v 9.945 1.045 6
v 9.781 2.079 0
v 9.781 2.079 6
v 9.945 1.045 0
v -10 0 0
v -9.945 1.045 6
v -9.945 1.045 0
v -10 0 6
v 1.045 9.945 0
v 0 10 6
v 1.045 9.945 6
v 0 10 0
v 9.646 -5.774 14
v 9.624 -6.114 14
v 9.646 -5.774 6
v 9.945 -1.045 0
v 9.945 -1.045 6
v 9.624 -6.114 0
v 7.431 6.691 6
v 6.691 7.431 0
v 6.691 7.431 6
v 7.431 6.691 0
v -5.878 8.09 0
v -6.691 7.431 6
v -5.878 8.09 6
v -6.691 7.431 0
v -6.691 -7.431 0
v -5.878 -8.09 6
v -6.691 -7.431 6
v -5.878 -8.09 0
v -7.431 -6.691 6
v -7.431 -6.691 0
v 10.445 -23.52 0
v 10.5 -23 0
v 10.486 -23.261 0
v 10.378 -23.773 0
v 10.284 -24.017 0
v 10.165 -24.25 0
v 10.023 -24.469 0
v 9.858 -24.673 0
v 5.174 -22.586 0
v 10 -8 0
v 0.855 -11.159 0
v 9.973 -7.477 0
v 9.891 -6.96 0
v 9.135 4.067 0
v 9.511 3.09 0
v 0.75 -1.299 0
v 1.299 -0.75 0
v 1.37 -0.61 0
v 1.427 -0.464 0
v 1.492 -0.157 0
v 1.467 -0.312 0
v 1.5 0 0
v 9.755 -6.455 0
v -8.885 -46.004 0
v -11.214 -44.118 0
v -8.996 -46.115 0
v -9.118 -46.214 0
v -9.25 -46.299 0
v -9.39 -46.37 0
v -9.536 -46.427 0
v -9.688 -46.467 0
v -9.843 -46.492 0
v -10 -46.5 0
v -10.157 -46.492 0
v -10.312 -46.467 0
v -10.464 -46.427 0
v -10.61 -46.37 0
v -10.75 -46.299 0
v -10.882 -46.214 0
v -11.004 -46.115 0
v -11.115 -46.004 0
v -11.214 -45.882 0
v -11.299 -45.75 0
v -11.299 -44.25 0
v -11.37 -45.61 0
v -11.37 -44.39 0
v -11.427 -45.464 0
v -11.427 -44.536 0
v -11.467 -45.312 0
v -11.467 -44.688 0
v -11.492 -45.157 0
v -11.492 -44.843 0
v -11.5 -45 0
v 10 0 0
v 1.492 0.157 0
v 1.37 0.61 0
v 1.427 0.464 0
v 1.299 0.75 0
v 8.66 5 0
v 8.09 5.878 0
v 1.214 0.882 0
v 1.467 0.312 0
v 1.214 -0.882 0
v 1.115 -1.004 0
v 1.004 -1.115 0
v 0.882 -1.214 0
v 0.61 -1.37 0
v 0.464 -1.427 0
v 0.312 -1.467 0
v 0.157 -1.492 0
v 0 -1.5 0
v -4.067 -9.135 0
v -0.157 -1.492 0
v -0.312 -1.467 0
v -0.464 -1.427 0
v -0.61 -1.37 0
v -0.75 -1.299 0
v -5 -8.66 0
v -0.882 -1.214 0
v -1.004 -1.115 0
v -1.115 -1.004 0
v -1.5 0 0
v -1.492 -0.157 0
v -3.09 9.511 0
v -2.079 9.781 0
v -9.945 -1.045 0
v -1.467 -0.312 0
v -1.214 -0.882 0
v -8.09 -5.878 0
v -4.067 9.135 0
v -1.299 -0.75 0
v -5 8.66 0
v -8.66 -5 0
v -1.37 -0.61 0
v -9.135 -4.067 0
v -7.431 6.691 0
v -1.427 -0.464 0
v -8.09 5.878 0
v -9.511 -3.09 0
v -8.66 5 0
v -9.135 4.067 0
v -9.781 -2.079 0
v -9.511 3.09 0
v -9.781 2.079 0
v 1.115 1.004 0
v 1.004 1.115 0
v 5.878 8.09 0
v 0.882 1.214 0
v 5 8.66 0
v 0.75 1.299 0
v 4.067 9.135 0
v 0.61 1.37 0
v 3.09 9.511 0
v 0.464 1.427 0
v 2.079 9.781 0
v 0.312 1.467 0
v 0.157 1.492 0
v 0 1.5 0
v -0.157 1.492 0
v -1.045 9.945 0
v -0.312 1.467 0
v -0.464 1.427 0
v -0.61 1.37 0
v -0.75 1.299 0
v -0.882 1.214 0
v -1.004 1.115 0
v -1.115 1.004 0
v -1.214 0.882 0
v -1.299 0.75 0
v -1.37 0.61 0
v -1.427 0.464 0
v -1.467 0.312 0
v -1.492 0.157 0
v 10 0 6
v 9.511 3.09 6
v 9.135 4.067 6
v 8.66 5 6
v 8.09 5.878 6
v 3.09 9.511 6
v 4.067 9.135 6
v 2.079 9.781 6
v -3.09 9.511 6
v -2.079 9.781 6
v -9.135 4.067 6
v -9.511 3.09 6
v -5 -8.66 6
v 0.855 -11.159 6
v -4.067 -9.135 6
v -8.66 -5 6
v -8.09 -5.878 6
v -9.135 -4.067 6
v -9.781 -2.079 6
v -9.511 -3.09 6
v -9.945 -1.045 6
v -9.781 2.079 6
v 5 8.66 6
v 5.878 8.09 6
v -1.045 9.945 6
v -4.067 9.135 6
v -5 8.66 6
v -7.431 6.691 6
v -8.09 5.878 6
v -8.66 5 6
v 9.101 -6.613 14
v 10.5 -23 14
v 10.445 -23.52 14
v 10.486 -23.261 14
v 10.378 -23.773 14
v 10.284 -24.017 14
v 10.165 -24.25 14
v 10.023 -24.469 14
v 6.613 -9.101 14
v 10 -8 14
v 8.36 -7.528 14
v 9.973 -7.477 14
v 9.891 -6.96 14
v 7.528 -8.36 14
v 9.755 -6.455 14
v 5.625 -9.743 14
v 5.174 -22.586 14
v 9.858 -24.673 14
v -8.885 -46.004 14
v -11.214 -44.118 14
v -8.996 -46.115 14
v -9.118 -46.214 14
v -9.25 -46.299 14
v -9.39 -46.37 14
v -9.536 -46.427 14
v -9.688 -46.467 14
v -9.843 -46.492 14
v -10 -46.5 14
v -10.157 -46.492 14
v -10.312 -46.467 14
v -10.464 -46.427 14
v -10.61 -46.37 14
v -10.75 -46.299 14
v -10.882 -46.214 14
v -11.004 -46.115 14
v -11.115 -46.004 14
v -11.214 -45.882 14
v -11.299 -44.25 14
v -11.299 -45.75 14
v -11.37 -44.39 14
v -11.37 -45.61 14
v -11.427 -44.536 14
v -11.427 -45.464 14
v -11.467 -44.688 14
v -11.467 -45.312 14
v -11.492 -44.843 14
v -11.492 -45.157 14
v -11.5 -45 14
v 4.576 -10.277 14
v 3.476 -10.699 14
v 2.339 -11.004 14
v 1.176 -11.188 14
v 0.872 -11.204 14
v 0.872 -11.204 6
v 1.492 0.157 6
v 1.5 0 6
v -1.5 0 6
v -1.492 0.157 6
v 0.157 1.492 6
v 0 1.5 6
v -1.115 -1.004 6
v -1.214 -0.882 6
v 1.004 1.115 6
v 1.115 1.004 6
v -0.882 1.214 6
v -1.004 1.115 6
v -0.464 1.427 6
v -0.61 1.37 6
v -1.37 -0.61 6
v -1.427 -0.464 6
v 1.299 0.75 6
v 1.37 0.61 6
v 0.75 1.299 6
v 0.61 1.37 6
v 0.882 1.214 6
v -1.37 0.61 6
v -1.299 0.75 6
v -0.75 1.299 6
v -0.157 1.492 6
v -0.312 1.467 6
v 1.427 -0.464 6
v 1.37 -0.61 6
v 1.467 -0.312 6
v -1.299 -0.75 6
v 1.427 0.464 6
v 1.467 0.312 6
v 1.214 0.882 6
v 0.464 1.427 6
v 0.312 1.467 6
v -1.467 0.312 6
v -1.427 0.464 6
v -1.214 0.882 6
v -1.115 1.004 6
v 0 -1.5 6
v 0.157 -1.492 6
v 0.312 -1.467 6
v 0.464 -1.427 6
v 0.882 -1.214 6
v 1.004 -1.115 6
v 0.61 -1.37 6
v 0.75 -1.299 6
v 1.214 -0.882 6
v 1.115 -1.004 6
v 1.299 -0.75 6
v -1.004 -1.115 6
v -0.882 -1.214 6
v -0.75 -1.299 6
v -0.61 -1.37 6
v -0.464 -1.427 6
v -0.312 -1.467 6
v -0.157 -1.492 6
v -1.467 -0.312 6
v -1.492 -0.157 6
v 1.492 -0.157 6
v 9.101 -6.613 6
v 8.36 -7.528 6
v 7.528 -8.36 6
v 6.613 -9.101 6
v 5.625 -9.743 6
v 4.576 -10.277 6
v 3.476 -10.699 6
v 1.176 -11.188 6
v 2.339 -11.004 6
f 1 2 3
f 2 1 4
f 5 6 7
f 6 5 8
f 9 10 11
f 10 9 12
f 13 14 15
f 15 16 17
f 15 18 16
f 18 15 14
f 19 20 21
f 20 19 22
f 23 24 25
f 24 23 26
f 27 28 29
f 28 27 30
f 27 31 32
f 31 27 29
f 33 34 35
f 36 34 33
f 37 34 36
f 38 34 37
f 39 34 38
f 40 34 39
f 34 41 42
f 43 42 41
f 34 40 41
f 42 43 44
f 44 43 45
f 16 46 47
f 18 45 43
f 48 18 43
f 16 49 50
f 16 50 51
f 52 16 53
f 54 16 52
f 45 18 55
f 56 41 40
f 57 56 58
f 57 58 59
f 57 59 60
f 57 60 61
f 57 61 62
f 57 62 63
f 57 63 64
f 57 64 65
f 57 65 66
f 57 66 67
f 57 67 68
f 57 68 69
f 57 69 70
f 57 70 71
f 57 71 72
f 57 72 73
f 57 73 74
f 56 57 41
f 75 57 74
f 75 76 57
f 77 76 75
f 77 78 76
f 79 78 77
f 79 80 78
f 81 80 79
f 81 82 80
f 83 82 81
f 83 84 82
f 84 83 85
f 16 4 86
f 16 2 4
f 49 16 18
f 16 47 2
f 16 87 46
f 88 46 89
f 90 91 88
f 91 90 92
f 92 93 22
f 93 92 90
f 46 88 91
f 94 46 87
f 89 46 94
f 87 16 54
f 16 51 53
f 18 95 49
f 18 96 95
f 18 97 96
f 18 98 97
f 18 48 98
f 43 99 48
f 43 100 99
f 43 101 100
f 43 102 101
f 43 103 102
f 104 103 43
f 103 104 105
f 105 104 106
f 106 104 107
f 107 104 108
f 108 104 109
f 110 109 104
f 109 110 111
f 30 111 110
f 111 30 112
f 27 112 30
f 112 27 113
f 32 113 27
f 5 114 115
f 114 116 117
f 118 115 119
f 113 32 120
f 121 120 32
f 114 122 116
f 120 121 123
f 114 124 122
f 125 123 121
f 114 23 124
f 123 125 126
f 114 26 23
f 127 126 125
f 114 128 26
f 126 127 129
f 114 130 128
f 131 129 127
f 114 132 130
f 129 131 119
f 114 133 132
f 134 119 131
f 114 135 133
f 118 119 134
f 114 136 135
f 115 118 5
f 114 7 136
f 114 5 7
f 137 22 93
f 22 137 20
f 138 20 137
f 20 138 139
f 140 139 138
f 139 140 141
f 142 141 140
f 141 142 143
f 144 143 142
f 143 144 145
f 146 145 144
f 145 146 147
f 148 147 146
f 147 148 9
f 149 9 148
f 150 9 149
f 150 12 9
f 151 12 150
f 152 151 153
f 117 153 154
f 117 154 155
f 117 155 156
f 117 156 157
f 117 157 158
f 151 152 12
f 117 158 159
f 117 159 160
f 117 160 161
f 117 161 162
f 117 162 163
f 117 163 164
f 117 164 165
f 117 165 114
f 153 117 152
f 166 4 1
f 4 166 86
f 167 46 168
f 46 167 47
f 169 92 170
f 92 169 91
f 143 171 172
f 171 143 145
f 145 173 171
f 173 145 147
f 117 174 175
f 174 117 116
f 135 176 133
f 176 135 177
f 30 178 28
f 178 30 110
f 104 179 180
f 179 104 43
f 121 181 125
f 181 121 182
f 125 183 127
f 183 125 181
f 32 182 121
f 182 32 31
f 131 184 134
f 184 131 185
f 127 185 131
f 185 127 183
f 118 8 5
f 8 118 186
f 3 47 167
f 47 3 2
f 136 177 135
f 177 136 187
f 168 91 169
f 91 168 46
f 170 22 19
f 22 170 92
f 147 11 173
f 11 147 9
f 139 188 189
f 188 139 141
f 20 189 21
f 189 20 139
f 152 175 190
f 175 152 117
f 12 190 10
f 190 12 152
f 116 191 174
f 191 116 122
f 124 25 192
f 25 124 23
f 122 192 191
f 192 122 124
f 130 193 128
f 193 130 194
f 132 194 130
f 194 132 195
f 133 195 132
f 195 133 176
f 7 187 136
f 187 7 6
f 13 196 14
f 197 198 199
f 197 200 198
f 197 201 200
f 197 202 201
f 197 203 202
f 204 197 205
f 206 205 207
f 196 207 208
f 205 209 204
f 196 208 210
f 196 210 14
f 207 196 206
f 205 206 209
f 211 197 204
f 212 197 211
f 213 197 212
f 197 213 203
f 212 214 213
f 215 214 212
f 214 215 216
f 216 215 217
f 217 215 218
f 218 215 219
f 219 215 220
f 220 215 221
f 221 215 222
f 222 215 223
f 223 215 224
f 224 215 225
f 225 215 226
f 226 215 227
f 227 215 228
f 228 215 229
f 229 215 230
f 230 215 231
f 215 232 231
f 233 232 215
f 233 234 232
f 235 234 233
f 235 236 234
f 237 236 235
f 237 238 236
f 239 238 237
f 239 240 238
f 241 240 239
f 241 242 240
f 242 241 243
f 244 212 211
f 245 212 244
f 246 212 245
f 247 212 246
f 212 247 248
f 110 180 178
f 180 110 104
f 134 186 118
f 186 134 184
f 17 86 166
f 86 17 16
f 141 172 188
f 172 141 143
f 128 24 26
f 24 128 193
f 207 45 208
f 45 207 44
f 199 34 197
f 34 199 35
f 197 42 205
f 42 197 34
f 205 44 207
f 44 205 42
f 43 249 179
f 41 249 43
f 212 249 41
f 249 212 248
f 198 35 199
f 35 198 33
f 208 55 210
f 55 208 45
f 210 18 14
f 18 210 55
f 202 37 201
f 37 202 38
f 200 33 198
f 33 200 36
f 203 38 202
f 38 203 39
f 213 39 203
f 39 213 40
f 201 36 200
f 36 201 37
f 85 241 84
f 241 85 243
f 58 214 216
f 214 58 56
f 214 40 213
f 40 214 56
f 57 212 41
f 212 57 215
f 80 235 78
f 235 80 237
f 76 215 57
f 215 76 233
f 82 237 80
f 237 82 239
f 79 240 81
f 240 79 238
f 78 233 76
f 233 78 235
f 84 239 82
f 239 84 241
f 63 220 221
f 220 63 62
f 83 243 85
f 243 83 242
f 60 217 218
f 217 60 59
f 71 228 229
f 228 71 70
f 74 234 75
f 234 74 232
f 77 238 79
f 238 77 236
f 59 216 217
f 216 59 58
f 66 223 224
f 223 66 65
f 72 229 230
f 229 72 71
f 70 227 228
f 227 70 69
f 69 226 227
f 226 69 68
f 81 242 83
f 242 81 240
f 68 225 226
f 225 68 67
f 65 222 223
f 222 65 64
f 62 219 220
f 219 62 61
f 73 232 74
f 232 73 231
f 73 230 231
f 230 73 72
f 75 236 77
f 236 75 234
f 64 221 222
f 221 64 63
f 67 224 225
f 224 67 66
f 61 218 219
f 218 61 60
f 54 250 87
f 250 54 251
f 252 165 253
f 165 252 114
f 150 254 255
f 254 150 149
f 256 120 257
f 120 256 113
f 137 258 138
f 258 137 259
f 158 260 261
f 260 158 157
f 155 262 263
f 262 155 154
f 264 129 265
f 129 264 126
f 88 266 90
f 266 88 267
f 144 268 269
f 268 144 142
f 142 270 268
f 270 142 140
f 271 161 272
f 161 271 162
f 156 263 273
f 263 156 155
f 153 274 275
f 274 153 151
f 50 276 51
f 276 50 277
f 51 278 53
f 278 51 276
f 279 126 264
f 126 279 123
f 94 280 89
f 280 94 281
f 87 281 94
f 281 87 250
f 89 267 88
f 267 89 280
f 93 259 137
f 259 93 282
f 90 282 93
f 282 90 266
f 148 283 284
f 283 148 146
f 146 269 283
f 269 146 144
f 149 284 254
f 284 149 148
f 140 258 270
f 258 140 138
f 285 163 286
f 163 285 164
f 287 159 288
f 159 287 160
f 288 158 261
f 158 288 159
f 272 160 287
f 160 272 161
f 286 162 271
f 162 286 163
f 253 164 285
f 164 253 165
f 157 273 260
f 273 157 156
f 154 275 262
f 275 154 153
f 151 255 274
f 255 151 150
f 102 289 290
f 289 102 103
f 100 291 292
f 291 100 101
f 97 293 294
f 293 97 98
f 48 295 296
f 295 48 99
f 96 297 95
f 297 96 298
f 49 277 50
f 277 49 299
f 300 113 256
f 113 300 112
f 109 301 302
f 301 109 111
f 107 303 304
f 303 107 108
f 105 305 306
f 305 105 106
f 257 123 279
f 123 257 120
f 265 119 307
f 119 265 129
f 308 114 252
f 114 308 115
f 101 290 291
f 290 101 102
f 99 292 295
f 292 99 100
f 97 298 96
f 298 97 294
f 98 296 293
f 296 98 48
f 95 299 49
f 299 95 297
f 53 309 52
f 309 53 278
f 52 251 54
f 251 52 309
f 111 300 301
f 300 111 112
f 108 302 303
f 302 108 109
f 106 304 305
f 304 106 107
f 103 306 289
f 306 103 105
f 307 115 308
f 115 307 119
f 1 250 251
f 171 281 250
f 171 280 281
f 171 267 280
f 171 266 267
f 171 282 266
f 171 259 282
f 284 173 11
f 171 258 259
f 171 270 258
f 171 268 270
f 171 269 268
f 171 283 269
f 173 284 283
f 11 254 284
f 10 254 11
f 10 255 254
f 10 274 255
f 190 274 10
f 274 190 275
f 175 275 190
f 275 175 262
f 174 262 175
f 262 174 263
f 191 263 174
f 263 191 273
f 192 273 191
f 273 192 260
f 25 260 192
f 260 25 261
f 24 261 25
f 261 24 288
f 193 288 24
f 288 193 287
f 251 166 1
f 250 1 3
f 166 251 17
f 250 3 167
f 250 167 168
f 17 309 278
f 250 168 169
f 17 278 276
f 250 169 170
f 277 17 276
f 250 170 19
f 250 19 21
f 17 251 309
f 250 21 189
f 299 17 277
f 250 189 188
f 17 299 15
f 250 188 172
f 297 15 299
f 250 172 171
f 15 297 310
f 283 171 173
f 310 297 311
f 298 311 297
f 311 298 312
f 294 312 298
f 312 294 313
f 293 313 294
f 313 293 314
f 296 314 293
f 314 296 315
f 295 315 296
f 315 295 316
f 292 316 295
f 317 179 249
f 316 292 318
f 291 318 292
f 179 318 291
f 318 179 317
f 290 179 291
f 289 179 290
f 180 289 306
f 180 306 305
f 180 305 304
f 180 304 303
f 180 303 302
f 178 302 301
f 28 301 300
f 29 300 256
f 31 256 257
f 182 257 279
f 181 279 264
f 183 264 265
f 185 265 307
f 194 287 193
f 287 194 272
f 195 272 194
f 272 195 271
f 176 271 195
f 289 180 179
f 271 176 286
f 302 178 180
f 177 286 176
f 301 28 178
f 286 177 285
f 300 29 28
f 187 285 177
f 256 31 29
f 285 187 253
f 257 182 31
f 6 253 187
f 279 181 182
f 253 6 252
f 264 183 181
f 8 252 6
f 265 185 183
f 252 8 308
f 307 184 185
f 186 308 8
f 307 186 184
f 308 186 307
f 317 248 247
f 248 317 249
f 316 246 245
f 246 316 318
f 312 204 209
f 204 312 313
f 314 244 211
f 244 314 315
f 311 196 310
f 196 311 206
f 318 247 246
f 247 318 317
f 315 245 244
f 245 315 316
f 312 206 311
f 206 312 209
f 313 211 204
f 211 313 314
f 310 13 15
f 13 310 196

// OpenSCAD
$fn=60;

difference(){

union(){

hull(){
cylinder(d=20,h=14);
translate([5,-8,0])
cylinder(d=9,h=14);
}

hull(){
translate([5,-8,0])
cylinder(d=10,h=14);
translate([8,-23,0])
cylinder(d=5,h=14);
}

hull(){
translate([8,-23,0])
cylinder(d=5,h=14);
translate([-10,-45,0])
cylinder(d=3,h=14);
}

}

cylinder(d=3,h=22);
translate([0,0,6])cylinder(d=22.5,h=20);
}
